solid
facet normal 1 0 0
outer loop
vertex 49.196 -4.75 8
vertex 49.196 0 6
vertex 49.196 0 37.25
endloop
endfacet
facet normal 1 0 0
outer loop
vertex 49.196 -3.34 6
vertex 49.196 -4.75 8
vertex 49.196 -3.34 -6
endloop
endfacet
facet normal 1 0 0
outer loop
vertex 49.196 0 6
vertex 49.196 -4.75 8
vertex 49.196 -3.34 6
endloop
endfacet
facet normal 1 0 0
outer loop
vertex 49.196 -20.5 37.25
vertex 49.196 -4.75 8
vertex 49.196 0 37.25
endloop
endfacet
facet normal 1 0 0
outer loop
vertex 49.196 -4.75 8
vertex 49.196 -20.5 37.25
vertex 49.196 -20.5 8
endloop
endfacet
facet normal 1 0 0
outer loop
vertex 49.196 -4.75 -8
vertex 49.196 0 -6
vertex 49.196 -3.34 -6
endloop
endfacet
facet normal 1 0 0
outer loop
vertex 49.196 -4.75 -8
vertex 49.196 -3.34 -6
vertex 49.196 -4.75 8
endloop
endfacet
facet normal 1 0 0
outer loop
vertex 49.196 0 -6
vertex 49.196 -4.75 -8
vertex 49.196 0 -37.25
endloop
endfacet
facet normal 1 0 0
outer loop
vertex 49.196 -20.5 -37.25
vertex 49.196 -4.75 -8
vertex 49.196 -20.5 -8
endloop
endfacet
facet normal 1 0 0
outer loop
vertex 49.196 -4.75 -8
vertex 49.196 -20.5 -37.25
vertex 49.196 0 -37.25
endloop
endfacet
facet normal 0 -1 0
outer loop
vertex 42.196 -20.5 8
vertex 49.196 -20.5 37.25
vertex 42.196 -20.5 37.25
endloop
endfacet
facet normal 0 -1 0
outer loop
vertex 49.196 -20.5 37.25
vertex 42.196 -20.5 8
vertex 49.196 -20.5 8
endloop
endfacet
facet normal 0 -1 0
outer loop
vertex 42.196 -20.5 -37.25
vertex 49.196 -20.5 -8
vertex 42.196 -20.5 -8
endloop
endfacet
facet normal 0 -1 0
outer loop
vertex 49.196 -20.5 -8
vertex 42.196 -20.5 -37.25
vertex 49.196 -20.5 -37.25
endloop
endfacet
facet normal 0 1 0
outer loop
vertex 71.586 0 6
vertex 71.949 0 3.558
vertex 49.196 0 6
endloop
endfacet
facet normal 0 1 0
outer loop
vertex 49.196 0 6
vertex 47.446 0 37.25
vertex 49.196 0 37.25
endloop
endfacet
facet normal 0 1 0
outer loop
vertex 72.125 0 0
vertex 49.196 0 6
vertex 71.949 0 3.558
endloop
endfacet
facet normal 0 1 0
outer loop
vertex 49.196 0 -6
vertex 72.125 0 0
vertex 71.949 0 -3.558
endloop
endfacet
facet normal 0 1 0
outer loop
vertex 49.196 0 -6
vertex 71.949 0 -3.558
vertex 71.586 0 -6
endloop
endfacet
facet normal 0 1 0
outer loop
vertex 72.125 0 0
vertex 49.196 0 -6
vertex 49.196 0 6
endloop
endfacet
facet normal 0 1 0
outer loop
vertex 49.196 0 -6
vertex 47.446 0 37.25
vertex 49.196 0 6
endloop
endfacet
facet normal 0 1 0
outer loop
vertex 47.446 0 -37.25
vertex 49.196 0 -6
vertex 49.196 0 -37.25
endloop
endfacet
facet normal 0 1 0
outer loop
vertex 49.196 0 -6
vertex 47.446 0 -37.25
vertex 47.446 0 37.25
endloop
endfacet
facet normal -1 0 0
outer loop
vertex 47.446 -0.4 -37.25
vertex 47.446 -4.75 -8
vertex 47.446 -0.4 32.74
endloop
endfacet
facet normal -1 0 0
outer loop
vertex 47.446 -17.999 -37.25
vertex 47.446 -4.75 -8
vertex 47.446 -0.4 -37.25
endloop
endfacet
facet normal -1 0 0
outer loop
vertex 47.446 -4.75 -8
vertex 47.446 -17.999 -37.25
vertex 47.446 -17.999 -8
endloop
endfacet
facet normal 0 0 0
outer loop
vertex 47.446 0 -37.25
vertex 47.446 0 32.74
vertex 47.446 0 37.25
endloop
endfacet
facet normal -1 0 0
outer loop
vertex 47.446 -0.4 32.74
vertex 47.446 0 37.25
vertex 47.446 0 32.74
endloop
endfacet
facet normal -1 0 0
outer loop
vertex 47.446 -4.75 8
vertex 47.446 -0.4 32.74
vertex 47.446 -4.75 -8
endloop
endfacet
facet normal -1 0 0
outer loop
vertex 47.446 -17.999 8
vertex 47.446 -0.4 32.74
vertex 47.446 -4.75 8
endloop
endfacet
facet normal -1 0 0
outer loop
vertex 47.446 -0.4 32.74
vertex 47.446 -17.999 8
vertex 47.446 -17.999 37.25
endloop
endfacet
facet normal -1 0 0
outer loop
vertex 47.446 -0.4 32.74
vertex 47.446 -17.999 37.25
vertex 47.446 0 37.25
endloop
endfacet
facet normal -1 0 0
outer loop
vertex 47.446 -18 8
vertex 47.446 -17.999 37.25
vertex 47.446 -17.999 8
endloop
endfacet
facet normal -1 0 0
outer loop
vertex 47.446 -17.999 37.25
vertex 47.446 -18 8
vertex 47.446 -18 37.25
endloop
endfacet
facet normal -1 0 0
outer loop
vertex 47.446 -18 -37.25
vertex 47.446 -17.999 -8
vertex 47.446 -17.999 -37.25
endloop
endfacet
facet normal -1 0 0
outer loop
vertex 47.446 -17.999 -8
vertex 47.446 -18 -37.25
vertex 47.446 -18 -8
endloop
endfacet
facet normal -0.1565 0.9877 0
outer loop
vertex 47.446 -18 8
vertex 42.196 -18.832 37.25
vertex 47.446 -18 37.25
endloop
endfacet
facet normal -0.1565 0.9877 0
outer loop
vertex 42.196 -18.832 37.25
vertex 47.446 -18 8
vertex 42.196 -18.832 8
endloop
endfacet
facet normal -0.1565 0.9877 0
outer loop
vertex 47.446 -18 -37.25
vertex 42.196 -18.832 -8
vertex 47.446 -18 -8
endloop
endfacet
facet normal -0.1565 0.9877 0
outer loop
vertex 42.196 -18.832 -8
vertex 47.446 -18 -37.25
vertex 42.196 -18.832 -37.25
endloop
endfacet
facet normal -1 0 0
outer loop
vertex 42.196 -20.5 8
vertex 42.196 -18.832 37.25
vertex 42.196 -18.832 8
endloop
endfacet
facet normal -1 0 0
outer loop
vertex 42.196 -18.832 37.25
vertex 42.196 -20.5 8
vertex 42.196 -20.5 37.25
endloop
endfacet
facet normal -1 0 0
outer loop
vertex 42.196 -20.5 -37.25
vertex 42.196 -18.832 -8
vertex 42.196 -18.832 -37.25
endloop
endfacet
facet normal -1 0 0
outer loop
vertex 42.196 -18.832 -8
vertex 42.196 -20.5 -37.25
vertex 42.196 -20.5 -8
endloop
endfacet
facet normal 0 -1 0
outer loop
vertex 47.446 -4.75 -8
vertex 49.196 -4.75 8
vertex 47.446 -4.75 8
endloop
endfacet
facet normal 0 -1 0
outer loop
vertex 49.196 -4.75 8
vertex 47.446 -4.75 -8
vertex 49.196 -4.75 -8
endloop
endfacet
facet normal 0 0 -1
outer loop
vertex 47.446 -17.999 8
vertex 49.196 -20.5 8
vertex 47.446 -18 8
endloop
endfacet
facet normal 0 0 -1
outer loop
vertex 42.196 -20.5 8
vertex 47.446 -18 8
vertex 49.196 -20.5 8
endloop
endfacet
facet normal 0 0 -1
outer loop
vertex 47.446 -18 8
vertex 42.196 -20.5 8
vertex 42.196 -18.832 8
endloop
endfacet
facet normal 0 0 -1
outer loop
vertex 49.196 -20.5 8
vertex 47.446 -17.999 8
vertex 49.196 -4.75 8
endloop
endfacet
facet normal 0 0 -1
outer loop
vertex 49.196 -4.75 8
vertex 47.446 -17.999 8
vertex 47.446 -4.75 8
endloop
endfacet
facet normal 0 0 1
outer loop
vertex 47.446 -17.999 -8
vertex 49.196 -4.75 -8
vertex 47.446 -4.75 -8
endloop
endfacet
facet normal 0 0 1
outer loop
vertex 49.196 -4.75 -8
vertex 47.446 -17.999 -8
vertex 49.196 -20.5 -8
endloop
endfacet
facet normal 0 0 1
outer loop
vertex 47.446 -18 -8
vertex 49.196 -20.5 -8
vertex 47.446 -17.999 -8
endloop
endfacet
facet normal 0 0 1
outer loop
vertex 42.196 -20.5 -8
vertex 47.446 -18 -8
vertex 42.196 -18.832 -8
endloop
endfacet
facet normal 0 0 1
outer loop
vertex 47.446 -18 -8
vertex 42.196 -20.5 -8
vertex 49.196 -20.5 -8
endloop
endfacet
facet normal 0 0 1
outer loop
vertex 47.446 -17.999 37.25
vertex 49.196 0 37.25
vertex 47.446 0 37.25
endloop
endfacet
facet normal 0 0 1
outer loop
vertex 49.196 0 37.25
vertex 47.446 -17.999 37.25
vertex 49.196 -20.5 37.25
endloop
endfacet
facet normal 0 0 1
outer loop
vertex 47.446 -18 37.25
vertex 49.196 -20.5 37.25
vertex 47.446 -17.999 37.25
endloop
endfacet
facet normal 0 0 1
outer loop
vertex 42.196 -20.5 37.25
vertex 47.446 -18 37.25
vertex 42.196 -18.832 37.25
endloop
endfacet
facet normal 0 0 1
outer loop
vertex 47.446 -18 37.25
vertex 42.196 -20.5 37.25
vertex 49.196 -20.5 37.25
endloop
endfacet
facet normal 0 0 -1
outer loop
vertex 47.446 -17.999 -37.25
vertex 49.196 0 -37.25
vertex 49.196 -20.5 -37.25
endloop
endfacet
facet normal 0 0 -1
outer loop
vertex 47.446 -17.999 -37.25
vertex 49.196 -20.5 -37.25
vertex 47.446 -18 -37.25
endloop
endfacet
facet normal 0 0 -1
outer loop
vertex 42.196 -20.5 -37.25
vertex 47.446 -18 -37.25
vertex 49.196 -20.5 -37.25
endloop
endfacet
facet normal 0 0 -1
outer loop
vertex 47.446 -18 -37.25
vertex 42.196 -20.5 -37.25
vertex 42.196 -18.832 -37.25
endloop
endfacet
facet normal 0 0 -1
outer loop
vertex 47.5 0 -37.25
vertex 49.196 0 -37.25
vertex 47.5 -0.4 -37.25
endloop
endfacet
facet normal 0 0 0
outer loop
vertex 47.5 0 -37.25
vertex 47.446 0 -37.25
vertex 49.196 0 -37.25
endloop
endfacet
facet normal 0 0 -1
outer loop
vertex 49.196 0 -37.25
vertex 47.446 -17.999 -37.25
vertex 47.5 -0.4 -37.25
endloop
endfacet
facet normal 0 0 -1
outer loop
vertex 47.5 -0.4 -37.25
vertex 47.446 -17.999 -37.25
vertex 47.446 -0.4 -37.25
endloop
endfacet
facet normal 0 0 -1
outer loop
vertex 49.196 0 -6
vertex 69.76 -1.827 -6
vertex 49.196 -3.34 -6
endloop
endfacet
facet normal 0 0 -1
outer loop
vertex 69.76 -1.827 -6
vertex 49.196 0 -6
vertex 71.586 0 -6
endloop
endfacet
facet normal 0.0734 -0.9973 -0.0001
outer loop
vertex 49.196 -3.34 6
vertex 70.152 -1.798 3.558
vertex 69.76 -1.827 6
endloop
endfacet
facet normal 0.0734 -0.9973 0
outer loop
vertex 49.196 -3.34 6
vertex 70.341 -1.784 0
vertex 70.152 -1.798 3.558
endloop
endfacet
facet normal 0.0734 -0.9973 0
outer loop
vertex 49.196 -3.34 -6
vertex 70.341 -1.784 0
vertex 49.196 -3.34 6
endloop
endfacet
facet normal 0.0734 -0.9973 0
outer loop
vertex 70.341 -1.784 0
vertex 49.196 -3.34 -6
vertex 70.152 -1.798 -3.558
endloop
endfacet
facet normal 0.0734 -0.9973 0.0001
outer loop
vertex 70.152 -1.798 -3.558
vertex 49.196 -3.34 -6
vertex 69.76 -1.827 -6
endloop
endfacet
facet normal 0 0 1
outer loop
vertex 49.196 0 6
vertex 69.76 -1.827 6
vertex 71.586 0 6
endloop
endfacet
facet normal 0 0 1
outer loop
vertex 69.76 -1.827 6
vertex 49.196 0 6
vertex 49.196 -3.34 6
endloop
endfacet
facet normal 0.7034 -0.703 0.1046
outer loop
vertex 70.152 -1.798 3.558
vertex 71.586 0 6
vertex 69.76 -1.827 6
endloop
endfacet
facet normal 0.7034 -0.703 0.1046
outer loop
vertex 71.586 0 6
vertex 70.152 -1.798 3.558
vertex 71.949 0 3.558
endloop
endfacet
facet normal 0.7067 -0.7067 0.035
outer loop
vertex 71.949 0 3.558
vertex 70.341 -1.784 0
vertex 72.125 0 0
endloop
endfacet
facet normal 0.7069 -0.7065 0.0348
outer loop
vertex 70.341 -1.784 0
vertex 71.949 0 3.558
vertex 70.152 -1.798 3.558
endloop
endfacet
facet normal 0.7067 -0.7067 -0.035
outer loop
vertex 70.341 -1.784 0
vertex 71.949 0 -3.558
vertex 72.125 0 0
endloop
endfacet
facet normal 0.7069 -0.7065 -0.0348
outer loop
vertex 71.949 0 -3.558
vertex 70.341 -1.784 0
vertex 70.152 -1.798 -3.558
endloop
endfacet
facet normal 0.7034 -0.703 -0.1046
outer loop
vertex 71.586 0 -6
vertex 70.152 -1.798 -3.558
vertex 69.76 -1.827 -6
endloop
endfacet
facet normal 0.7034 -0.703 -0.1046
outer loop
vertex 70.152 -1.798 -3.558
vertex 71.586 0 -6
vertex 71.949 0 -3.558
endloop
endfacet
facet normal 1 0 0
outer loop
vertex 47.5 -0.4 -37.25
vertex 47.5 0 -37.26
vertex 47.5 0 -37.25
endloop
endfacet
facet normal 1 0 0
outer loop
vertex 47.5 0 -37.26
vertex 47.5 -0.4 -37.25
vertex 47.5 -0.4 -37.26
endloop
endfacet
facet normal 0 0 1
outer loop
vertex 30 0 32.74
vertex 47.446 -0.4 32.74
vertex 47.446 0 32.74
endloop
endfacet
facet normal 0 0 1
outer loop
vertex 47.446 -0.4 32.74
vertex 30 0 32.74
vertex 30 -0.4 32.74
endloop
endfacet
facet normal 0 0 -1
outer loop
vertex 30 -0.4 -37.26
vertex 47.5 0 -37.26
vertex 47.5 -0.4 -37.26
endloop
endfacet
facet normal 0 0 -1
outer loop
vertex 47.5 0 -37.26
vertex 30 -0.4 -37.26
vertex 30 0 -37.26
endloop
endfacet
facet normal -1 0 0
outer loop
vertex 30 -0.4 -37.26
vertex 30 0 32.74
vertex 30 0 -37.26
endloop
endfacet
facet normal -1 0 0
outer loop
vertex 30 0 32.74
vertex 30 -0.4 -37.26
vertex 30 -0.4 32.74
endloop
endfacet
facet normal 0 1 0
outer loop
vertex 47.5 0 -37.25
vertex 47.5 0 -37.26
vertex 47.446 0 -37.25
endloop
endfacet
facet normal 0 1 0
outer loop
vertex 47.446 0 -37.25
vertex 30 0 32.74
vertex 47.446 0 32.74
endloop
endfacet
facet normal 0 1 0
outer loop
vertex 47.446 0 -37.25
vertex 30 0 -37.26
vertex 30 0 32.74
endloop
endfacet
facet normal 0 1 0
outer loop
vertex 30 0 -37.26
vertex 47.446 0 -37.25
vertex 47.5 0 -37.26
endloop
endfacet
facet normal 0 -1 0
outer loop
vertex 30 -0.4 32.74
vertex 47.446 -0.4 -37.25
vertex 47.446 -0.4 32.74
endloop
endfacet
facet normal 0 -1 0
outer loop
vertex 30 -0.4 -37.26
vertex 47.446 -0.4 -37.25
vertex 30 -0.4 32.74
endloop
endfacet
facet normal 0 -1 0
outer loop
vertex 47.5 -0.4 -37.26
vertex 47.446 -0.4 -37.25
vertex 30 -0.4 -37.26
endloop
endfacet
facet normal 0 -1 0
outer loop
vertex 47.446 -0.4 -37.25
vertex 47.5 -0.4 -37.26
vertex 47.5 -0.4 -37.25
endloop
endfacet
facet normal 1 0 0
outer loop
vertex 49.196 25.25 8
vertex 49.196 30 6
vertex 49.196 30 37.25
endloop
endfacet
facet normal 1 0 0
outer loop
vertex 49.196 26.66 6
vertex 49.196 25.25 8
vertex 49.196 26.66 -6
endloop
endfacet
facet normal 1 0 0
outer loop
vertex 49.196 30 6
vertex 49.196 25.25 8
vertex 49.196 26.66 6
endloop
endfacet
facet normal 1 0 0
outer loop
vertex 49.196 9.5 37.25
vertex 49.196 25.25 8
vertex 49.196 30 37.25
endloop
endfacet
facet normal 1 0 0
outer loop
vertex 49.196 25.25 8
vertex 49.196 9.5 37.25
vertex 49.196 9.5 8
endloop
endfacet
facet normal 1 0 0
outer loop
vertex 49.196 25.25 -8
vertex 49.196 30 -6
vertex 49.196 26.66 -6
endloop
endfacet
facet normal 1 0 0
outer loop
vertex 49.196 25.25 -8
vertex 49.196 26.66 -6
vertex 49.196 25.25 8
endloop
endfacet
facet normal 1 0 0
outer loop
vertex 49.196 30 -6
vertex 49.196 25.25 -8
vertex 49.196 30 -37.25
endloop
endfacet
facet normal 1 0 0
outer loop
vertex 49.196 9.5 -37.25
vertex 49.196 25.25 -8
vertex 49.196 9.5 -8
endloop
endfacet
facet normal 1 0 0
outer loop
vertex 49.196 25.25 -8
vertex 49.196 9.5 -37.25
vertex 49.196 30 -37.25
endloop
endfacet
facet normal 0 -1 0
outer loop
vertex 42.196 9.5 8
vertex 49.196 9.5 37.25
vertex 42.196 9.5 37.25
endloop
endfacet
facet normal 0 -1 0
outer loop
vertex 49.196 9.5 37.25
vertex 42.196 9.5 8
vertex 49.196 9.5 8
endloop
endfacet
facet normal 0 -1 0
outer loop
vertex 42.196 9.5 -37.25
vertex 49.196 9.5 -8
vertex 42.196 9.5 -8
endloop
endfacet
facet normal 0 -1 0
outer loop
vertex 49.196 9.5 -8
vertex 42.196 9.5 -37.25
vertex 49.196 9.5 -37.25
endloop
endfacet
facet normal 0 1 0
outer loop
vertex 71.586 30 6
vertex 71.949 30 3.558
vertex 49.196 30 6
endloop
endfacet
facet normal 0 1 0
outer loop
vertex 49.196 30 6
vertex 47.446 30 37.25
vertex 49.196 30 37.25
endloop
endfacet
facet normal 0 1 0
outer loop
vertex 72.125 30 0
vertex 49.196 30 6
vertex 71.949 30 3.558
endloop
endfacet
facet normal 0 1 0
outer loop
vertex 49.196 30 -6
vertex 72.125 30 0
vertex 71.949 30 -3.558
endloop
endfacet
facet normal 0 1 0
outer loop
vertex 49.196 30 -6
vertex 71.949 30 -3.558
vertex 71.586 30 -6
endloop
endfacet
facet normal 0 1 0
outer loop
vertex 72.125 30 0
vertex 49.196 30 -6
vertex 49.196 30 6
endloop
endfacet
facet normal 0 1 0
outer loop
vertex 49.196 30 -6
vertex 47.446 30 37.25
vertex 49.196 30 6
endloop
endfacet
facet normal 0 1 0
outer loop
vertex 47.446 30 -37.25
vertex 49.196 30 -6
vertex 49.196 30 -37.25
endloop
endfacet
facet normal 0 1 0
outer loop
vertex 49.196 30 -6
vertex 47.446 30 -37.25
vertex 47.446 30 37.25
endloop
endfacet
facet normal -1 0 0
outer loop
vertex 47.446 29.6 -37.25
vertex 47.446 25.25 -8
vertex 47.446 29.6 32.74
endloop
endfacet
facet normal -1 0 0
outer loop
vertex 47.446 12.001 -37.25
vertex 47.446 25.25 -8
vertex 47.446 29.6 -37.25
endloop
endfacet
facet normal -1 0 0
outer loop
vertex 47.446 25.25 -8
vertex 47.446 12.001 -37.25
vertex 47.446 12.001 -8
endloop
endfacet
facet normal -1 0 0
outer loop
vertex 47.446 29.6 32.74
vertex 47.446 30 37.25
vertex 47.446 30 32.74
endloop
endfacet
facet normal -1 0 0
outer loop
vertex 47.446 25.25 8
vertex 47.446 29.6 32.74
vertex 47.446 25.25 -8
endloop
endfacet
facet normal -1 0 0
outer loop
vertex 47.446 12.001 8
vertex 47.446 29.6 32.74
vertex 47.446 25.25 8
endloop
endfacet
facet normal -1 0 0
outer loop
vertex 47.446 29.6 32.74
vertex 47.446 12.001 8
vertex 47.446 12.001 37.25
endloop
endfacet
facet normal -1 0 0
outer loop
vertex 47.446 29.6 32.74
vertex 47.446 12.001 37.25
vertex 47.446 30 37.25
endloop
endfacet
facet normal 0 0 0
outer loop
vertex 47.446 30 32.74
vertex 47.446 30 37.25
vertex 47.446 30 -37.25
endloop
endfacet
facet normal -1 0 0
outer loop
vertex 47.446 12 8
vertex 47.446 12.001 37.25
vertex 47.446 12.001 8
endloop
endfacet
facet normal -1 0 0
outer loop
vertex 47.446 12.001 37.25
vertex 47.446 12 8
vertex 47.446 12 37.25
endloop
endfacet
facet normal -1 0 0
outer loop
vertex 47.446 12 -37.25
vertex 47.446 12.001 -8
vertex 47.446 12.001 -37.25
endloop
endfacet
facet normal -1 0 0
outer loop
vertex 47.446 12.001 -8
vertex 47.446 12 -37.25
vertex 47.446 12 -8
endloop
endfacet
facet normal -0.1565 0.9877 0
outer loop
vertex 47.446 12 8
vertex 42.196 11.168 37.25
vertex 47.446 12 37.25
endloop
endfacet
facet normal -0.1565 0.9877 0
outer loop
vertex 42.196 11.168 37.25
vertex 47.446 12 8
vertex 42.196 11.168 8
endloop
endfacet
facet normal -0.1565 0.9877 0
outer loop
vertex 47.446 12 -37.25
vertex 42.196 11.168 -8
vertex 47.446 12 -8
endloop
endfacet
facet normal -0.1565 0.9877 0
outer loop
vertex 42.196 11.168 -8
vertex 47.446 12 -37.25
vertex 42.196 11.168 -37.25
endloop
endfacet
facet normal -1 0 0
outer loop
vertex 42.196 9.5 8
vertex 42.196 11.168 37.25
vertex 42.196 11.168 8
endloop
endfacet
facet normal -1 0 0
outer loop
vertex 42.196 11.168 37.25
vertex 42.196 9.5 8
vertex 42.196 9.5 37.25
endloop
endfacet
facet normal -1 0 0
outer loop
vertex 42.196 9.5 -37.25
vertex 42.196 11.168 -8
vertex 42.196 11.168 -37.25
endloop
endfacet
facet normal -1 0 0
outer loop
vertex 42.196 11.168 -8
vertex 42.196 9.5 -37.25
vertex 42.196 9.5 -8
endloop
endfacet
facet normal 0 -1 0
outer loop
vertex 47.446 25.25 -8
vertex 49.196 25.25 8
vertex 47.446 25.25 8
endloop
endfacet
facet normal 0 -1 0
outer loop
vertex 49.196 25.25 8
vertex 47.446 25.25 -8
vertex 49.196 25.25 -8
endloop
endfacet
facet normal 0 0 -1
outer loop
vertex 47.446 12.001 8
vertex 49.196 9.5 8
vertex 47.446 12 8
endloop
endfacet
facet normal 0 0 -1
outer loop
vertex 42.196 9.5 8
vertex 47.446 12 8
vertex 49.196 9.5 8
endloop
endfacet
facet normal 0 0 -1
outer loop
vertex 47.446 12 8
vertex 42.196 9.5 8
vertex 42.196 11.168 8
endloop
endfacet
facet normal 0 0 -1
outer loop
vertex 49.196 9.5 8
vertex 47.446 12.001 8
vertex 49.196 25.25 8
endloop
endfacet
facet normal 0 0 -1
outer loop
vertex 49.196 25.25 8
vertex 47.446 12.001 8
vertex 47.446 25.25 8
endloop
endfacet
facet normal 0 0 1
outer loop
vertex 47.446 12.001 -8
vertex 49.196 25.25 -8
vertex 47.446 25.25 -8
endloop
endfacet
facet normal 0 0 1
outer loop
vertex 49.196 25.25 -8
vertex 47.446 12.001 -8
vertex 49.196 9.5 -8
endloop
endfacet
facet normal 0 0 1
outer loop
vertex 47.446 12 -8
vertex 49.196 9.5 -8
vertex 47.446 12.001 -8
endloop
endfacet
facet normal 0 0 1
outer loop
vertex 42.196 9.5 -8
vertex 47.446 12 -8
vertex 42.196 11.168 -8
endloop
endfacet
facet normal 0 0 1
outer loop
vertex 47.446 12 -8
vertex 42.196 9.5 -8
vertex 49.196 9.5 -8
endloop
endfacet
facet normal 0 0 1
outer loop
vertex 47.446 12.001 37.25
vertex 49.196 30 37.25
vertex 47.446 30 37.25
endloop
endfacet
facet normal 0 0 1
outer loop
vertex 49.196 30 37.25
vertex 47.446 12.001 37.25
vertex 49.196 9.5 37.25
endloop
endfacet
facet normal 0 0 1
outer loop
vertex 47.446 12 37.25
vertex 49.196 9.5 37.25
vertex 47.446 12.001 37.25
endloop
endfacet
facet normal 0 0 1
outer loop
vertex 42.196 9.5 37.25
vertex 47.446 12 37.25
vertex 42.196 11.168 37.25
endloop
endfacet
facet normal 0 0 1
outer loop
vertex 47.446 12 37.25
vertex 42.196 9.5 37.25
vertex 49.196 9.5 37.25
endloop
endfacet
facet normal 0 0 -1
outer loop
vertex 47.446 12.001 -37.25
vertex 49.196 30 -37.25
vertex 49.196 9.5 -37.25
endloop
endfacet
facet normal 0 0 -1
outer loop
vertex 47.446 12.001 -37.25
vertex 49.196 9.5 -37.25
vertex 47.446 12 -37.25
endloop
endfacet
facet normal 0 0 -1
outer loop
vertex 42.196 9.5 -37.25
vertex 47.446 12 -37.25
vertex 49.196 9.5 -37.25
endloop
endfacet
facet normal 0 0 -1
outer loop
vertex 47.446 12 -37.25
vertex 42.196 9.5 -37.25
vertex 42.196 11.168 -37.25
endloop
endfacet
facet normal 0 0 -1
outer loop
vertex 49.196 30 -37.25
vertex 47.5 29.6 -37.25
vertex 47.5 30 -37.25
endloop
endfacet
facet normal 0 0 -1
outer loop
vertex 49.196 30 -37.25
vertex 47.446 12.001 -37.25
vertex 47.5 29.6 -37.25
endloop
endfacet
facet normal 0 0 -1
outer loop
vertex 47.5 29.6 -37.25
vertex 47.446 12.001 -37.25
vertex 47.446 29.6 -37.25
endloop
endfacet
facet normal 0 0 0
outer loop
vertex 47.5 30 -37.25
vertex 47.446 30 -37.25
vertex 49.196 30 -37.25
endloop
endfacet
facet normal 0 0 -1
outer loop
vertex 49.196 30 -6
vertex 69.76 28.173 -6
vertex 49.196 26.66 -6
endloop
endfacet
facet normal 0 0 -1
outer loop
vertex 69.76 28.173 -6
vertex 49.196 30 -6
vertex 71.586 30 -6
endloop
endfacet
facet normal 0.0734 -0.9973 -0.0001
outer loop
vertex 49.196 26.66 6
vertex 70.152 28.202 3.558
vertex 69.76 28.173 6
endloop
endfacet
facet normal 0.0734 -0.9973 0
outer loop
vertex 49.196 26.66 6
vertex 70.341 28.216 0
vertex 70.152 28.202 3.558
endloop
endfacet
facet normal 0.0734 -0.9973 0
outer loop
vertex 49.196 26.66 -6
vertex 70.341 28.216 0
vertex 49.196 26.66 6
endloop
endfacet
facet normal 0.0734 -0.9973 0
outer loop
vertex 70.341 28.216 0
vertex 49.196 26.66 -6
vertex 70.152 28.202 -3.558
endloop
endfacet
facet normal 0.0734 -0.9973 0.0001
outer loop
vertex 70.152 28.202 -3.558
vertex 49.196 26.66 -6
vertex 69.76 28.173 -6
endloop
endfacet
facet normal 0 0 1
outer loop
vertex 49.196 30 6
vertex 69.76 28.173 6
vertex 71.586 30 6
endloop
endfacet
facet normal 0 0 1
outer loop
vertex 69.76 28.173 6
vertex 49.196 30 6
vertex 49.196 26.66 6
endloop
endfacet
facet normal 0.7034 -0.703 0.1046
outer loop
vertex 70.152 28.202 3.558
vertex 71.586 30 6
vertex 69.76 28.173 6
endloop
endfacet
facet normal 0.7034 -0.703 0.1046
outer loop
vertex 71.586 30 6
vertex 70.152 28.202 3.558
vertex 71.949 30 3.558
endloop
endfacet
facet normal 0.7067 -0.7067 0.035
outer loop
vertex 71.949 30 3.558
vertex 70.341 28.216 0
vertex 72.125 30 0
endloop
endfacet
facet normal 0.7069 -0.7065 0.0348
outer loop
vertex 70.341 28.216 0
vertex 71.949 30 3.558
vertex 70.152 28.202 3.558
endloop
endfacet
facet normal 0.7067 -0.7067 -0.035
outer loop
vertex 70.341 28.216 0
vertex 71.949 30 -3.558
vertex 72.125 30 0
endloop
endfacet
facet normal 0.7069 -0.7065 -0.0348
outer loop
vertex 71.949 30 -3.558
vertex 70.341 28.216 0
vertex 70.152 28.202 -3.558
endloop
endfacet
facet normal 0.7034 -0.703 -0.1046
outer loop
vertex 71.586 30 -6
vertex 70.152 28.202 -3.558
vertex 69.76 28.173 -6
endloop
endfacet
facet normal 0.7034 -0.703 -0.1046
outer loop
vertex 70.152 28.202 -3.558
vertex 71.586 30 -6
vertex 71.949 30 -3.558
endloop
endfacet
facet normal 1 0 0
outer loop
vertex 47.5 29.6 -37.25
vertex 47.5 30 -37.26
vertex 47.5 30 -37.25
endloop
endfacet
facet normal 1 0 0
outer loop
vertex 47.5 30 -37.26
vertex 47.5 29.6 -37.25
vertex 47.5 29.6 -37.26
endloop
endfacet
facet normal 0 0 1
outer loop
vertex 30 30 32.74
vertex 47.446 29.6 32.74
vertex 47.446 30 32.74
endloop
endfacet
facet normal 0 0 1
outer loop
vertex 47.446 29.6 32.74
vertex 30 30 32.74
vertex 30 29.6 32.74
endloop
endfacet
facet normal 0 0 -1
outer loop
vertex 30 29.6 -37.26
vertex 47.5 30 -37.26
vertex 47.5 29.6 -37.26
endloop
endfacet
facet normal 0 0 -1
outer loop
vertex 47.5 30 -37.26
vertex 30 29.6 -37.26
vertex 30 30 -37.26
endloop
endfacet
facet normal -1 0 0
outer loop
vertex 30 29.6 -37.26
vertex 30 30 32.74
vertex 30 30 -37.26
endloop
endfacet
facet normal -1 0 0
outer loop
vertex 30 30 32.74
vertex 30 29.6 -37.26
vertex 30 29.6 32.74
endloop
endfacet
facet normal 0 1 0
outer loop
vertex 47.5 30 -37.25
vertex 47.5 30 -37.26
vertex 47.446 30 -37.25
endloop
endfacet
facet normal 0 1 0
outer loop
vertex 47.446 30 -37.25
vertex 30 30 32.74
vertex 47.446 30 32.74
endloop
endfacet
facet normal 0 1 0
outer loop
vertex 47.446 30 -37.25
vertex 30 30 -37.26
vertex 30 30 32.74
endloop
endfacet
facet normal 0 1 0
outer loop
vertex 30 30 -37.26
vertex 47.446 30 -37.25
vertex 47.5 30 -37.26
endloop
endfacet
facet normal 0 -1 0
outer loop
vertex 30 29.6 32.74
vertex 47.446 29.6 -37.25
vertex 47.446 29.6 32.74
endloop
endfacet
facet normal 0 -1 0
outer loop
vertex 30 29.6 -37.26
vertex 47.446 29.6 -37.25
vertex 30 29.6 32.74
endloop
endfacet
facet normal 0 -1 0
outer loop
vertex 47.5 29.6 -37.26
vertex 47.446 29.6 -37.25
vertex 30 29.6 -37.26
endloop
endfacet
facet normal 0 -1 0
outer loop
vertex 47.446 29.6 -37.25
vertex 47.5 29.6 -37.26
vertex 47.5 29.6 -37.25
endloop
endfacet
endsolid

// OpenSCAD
use <all-parts.scad>

module one() {
    rotate([90, 0, 0])
    diagonal_grip(flat=true);

    translate([30, -.4, -36.26-1])
    cube([17.5, .4, 70]);

    /*
    translate([47.1, -.4, -36.26])
    cube([.4, 15, 70]);
    */
}


one();
translate([0, 30, 0]) one();
